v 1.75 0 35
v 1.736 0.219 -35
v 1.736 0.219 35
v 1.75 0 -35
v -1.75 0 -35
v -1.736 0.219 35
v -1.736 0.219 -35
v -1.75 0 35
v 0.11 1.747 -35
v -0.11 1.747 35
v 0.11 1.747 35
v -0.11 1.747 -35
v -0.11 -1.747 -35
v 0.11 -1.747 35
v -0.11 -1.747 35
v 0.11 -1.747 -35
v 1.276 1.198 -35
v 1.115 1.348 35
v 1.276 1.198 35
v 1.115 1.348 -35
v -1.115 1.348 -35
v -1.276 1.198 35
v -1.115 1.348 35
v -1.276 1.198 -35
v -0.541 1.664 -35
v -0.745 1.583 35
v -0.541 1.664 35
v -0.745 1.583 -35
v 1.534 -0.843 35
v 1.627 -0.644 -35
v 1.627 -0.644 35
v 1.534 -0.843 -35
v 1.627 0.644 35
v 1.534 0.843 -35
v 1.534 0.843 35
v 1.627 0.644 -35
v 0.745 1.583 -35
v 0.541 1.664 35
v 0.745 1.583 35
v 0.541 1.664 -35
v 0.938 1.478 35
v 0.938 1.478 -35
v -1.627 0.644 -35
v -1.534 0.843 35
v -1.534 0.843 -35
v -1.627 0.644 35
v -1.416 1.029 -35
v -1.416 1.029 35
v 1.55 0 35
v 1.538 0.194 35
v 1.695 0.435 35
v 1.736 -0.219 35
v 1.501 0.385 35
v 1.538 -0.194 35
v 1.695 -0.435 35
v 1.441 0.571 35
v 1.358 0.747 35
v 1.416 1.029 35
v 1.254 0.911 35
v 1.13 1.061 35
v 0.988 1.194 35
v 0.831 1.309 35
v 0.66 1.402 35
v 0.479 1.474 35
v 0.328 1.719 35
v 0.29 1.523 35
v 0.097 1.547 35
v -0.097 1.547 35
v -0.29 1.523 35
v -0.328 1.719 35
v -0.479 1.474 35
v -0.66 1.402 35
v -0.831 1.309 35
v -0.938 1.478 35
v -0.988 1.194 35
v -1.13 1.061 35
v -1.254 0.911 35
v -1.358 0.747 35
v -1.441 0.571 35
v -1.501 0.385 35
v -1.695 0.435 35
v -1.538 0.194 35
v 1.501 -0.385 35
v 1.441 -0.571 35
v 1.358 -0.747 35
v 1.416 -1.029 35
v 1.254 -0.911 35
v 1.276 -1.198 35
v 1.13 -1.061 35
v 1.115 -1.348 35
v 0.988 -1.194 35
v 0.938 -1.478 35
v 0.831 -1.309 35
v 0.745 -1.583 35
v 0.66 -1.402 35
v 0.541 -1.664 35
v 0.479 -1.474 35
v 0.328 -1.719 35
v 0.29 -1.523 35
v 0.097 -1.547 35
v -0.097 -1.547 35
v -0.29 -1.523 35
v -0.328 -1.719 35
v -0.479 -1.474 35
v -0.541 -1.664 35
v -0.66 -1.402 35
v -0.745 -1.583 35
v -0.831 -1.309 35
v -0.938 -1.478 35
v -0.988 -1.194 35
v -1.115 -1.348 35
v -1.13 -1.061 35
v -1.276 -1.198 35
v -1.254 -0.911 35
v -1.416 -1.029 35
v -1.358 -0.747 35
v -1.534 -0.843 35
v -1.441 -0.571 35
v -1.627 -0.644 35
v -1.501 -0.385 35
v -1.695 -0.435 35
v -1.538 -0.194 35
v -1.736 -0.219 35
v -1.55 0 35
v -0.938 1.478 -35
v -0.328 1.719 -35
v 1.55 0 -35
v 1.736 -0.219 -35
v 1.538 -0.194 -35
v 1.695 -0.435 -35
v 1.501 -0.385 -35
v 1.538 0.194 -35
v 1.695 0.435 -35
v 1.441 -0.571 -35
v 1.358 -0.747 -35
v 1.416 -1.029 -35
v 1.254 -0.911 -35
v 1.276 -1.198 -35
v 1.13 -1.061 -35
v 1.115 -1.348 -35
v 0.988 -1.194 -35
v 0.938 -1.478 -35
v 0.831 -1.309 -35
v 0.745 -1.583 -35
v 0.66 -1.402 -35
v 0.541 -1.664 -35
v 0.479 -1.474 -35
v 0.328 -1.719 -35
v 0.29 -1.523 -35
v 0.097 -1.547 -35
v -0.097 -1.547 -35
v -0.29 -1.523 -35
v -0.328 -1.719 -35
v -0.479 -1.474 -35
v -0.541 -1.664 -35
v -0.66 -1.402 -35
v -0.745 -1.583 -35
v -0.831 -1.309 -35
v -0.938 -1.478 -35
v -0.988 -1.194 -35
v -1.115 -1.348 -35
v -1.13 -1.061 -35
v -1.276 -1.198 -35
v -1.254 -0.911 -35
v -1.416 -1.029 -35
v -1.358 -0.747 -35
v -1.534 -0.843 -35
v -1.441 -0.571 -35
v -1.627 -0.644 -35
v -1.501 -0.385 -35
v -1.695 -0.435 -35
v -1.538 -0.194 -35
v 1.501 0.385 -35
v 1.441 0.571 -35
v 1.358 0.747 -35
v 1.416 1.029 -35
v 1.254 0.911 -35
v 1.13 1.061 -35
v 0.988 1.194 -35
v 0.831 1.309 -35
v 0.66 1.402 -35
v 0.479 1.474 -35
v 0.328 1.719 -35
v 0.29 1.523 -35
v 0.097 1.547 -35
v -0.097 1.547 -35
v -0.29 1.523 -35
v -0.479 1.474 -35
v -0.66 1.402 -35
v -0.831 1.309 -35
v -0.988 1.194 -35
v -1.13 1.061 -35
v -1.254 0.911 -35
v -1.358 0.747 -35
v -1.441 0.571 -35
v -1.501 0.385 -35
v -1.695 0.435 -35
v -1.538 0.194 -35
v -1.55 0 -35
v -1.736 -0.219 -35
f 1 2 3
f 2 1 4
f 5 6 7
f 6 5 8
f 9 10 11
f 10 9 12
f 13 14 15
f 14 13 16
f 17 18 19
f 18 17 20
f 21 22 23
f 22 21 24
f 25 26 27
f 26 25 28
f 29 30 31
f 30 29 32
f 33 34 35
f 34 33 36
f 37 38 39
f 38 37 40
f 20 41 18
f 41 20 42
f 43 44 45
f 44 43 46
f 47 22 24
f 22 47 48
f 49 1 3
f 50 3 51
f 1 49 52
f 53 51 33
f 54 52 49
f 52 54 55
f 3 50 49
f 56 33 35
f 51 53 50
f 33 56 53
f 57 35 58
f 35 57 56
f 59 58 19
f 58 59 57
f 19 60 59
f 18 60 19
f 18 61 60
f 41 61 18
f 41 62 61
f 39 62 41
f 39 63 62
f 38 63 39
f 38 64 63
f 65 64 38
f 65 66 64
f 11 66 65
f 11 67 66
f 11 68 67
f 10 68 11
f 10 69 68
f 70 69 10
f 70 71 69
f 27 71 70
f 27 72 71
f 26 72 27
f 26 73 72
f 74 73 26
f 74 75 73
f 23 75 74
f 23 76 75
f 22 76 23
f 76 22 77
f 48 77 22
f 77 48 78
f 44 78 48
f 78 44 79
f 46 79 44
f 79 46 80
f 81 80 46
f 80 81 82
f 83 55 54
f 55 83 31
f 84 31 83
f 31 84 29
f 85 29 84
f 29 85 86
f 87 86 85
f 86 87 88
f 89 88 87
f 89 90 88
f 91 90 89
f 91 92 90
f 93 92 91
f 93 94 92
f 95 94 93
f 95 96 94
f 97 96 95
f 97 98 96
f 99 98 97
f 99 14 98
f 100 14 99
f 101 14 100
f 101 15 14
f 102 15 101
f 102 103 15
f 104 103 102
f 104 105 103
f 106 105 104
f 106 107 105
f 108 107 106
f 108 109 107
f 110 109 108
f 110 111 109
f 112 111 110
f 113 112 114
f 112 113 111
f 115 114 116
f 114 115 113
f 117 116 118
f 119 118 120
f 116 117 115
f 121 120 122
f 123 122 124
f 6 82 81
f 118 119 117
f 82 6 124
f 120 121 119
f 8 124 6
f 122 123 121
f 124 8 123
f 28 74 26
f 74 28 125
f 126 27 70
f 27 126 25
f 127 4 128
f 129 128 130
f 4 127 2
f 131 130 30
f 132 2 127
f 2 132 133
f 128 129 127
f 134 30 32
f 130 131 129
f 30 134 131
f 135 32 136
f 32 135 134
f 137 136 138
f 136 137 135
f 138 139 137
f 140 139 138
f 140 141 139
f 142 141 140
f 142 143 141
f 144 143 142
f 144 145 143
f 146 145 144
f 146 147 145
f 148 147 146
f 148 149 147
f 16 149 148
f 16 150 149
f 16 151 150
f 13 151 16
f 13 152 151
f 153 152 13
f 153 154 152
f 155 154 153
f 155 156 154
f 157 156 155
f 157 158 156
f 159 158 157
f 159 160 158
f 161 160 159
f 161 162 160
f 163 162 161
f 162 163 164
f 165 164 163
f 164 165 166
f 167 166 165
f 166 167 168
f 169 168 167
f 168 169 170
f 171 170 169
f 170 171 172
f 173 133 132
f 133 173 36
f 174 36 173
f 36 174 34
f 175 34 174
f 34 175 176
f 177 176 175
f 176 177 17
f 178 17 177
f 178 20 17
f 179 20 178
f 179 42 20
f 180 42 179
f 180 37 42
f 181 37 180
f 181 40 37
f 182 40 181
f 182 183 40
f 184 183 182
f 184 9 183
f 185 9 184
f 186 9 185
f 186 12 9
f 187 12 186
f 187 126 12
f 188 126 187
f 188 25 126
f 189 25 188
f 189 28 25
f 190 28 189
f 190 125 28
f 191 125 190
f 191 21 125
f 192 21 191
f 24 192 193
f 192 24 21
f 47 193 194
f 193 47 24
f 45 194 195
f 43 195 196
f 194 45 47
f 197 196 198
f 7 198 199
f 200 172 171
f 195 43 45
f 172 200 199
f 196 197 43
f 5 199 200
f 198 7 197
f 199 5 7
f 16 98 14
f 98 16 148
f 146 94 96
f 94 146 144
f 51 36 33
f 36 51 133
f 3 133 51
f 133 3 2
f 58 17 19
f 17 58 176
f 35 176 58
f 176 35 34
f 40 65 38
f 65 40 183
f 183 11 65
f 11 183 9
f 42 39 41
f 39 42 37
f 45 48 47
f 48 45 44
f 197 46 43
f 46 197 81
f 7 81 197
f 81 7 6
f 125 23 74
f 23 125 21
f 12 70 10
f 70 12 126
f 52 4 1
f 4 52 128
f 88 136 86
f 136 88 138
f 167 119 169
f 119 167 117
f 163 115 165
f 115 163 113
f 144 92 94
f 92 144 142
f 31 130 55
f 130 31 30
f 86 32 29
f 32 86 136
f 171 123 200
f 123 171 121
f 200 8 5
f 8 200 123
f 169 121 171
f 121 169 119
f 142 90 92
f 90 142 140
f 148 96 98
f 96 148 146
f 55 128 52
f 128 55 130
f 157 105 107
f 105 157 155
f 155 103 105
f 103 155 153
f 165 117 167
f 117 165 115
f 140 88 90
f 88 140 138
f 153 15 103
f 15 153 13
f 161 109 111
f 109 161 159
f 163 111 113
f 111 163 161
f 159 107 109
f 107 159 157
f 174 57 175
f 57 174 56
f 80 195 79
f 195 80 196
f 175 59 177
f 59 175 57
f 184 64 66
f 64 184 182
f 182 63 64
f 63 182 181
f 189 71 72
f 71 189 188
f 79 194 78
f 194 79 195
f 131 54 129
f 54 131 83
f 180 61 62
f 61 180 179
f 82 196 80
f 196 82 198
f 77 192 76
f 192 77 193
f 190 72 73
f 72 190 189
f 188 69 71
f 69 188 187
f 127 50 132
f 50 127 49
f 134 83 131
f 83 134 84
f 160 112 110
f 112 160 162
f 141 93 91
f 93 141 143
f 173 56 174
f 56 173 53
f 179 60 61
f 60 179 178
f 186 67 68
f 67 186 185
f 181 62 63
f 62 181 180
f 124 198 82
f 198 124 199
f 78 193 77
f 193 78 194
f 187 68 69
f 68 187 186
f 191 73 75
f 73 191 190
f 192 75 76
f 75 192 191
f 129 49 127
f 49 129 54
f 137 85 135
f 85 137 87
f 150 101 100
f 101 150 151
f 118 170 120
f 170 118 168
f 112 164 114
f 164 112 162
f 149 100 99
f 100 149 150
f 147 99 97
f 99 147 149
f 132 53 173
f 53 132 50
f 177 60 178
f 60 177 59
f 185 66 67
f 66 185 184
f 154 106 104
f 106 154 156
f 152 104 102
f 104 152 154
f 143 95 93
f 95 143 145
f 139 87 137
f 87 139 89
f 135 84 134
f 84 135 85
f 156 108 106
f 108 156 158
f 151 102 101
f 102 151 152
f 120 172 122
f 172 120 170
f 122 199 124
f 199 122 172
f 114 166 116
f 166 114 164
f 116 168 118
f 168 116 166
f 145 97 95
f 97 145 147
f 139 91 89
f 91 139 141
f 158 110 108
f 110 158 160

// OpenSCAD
$fn = 50;


difference() {
	union() {
		translate(v = [0, 0, -35.0000000000]) {
			cylinder(h = 70, r = 1.7500000000);
		}
	}
	union() {
		translate(v = [0, 0, -100.0000000000]) {
			cylinder(h = 200, r = 1.5500000000);
		}
	}
}
